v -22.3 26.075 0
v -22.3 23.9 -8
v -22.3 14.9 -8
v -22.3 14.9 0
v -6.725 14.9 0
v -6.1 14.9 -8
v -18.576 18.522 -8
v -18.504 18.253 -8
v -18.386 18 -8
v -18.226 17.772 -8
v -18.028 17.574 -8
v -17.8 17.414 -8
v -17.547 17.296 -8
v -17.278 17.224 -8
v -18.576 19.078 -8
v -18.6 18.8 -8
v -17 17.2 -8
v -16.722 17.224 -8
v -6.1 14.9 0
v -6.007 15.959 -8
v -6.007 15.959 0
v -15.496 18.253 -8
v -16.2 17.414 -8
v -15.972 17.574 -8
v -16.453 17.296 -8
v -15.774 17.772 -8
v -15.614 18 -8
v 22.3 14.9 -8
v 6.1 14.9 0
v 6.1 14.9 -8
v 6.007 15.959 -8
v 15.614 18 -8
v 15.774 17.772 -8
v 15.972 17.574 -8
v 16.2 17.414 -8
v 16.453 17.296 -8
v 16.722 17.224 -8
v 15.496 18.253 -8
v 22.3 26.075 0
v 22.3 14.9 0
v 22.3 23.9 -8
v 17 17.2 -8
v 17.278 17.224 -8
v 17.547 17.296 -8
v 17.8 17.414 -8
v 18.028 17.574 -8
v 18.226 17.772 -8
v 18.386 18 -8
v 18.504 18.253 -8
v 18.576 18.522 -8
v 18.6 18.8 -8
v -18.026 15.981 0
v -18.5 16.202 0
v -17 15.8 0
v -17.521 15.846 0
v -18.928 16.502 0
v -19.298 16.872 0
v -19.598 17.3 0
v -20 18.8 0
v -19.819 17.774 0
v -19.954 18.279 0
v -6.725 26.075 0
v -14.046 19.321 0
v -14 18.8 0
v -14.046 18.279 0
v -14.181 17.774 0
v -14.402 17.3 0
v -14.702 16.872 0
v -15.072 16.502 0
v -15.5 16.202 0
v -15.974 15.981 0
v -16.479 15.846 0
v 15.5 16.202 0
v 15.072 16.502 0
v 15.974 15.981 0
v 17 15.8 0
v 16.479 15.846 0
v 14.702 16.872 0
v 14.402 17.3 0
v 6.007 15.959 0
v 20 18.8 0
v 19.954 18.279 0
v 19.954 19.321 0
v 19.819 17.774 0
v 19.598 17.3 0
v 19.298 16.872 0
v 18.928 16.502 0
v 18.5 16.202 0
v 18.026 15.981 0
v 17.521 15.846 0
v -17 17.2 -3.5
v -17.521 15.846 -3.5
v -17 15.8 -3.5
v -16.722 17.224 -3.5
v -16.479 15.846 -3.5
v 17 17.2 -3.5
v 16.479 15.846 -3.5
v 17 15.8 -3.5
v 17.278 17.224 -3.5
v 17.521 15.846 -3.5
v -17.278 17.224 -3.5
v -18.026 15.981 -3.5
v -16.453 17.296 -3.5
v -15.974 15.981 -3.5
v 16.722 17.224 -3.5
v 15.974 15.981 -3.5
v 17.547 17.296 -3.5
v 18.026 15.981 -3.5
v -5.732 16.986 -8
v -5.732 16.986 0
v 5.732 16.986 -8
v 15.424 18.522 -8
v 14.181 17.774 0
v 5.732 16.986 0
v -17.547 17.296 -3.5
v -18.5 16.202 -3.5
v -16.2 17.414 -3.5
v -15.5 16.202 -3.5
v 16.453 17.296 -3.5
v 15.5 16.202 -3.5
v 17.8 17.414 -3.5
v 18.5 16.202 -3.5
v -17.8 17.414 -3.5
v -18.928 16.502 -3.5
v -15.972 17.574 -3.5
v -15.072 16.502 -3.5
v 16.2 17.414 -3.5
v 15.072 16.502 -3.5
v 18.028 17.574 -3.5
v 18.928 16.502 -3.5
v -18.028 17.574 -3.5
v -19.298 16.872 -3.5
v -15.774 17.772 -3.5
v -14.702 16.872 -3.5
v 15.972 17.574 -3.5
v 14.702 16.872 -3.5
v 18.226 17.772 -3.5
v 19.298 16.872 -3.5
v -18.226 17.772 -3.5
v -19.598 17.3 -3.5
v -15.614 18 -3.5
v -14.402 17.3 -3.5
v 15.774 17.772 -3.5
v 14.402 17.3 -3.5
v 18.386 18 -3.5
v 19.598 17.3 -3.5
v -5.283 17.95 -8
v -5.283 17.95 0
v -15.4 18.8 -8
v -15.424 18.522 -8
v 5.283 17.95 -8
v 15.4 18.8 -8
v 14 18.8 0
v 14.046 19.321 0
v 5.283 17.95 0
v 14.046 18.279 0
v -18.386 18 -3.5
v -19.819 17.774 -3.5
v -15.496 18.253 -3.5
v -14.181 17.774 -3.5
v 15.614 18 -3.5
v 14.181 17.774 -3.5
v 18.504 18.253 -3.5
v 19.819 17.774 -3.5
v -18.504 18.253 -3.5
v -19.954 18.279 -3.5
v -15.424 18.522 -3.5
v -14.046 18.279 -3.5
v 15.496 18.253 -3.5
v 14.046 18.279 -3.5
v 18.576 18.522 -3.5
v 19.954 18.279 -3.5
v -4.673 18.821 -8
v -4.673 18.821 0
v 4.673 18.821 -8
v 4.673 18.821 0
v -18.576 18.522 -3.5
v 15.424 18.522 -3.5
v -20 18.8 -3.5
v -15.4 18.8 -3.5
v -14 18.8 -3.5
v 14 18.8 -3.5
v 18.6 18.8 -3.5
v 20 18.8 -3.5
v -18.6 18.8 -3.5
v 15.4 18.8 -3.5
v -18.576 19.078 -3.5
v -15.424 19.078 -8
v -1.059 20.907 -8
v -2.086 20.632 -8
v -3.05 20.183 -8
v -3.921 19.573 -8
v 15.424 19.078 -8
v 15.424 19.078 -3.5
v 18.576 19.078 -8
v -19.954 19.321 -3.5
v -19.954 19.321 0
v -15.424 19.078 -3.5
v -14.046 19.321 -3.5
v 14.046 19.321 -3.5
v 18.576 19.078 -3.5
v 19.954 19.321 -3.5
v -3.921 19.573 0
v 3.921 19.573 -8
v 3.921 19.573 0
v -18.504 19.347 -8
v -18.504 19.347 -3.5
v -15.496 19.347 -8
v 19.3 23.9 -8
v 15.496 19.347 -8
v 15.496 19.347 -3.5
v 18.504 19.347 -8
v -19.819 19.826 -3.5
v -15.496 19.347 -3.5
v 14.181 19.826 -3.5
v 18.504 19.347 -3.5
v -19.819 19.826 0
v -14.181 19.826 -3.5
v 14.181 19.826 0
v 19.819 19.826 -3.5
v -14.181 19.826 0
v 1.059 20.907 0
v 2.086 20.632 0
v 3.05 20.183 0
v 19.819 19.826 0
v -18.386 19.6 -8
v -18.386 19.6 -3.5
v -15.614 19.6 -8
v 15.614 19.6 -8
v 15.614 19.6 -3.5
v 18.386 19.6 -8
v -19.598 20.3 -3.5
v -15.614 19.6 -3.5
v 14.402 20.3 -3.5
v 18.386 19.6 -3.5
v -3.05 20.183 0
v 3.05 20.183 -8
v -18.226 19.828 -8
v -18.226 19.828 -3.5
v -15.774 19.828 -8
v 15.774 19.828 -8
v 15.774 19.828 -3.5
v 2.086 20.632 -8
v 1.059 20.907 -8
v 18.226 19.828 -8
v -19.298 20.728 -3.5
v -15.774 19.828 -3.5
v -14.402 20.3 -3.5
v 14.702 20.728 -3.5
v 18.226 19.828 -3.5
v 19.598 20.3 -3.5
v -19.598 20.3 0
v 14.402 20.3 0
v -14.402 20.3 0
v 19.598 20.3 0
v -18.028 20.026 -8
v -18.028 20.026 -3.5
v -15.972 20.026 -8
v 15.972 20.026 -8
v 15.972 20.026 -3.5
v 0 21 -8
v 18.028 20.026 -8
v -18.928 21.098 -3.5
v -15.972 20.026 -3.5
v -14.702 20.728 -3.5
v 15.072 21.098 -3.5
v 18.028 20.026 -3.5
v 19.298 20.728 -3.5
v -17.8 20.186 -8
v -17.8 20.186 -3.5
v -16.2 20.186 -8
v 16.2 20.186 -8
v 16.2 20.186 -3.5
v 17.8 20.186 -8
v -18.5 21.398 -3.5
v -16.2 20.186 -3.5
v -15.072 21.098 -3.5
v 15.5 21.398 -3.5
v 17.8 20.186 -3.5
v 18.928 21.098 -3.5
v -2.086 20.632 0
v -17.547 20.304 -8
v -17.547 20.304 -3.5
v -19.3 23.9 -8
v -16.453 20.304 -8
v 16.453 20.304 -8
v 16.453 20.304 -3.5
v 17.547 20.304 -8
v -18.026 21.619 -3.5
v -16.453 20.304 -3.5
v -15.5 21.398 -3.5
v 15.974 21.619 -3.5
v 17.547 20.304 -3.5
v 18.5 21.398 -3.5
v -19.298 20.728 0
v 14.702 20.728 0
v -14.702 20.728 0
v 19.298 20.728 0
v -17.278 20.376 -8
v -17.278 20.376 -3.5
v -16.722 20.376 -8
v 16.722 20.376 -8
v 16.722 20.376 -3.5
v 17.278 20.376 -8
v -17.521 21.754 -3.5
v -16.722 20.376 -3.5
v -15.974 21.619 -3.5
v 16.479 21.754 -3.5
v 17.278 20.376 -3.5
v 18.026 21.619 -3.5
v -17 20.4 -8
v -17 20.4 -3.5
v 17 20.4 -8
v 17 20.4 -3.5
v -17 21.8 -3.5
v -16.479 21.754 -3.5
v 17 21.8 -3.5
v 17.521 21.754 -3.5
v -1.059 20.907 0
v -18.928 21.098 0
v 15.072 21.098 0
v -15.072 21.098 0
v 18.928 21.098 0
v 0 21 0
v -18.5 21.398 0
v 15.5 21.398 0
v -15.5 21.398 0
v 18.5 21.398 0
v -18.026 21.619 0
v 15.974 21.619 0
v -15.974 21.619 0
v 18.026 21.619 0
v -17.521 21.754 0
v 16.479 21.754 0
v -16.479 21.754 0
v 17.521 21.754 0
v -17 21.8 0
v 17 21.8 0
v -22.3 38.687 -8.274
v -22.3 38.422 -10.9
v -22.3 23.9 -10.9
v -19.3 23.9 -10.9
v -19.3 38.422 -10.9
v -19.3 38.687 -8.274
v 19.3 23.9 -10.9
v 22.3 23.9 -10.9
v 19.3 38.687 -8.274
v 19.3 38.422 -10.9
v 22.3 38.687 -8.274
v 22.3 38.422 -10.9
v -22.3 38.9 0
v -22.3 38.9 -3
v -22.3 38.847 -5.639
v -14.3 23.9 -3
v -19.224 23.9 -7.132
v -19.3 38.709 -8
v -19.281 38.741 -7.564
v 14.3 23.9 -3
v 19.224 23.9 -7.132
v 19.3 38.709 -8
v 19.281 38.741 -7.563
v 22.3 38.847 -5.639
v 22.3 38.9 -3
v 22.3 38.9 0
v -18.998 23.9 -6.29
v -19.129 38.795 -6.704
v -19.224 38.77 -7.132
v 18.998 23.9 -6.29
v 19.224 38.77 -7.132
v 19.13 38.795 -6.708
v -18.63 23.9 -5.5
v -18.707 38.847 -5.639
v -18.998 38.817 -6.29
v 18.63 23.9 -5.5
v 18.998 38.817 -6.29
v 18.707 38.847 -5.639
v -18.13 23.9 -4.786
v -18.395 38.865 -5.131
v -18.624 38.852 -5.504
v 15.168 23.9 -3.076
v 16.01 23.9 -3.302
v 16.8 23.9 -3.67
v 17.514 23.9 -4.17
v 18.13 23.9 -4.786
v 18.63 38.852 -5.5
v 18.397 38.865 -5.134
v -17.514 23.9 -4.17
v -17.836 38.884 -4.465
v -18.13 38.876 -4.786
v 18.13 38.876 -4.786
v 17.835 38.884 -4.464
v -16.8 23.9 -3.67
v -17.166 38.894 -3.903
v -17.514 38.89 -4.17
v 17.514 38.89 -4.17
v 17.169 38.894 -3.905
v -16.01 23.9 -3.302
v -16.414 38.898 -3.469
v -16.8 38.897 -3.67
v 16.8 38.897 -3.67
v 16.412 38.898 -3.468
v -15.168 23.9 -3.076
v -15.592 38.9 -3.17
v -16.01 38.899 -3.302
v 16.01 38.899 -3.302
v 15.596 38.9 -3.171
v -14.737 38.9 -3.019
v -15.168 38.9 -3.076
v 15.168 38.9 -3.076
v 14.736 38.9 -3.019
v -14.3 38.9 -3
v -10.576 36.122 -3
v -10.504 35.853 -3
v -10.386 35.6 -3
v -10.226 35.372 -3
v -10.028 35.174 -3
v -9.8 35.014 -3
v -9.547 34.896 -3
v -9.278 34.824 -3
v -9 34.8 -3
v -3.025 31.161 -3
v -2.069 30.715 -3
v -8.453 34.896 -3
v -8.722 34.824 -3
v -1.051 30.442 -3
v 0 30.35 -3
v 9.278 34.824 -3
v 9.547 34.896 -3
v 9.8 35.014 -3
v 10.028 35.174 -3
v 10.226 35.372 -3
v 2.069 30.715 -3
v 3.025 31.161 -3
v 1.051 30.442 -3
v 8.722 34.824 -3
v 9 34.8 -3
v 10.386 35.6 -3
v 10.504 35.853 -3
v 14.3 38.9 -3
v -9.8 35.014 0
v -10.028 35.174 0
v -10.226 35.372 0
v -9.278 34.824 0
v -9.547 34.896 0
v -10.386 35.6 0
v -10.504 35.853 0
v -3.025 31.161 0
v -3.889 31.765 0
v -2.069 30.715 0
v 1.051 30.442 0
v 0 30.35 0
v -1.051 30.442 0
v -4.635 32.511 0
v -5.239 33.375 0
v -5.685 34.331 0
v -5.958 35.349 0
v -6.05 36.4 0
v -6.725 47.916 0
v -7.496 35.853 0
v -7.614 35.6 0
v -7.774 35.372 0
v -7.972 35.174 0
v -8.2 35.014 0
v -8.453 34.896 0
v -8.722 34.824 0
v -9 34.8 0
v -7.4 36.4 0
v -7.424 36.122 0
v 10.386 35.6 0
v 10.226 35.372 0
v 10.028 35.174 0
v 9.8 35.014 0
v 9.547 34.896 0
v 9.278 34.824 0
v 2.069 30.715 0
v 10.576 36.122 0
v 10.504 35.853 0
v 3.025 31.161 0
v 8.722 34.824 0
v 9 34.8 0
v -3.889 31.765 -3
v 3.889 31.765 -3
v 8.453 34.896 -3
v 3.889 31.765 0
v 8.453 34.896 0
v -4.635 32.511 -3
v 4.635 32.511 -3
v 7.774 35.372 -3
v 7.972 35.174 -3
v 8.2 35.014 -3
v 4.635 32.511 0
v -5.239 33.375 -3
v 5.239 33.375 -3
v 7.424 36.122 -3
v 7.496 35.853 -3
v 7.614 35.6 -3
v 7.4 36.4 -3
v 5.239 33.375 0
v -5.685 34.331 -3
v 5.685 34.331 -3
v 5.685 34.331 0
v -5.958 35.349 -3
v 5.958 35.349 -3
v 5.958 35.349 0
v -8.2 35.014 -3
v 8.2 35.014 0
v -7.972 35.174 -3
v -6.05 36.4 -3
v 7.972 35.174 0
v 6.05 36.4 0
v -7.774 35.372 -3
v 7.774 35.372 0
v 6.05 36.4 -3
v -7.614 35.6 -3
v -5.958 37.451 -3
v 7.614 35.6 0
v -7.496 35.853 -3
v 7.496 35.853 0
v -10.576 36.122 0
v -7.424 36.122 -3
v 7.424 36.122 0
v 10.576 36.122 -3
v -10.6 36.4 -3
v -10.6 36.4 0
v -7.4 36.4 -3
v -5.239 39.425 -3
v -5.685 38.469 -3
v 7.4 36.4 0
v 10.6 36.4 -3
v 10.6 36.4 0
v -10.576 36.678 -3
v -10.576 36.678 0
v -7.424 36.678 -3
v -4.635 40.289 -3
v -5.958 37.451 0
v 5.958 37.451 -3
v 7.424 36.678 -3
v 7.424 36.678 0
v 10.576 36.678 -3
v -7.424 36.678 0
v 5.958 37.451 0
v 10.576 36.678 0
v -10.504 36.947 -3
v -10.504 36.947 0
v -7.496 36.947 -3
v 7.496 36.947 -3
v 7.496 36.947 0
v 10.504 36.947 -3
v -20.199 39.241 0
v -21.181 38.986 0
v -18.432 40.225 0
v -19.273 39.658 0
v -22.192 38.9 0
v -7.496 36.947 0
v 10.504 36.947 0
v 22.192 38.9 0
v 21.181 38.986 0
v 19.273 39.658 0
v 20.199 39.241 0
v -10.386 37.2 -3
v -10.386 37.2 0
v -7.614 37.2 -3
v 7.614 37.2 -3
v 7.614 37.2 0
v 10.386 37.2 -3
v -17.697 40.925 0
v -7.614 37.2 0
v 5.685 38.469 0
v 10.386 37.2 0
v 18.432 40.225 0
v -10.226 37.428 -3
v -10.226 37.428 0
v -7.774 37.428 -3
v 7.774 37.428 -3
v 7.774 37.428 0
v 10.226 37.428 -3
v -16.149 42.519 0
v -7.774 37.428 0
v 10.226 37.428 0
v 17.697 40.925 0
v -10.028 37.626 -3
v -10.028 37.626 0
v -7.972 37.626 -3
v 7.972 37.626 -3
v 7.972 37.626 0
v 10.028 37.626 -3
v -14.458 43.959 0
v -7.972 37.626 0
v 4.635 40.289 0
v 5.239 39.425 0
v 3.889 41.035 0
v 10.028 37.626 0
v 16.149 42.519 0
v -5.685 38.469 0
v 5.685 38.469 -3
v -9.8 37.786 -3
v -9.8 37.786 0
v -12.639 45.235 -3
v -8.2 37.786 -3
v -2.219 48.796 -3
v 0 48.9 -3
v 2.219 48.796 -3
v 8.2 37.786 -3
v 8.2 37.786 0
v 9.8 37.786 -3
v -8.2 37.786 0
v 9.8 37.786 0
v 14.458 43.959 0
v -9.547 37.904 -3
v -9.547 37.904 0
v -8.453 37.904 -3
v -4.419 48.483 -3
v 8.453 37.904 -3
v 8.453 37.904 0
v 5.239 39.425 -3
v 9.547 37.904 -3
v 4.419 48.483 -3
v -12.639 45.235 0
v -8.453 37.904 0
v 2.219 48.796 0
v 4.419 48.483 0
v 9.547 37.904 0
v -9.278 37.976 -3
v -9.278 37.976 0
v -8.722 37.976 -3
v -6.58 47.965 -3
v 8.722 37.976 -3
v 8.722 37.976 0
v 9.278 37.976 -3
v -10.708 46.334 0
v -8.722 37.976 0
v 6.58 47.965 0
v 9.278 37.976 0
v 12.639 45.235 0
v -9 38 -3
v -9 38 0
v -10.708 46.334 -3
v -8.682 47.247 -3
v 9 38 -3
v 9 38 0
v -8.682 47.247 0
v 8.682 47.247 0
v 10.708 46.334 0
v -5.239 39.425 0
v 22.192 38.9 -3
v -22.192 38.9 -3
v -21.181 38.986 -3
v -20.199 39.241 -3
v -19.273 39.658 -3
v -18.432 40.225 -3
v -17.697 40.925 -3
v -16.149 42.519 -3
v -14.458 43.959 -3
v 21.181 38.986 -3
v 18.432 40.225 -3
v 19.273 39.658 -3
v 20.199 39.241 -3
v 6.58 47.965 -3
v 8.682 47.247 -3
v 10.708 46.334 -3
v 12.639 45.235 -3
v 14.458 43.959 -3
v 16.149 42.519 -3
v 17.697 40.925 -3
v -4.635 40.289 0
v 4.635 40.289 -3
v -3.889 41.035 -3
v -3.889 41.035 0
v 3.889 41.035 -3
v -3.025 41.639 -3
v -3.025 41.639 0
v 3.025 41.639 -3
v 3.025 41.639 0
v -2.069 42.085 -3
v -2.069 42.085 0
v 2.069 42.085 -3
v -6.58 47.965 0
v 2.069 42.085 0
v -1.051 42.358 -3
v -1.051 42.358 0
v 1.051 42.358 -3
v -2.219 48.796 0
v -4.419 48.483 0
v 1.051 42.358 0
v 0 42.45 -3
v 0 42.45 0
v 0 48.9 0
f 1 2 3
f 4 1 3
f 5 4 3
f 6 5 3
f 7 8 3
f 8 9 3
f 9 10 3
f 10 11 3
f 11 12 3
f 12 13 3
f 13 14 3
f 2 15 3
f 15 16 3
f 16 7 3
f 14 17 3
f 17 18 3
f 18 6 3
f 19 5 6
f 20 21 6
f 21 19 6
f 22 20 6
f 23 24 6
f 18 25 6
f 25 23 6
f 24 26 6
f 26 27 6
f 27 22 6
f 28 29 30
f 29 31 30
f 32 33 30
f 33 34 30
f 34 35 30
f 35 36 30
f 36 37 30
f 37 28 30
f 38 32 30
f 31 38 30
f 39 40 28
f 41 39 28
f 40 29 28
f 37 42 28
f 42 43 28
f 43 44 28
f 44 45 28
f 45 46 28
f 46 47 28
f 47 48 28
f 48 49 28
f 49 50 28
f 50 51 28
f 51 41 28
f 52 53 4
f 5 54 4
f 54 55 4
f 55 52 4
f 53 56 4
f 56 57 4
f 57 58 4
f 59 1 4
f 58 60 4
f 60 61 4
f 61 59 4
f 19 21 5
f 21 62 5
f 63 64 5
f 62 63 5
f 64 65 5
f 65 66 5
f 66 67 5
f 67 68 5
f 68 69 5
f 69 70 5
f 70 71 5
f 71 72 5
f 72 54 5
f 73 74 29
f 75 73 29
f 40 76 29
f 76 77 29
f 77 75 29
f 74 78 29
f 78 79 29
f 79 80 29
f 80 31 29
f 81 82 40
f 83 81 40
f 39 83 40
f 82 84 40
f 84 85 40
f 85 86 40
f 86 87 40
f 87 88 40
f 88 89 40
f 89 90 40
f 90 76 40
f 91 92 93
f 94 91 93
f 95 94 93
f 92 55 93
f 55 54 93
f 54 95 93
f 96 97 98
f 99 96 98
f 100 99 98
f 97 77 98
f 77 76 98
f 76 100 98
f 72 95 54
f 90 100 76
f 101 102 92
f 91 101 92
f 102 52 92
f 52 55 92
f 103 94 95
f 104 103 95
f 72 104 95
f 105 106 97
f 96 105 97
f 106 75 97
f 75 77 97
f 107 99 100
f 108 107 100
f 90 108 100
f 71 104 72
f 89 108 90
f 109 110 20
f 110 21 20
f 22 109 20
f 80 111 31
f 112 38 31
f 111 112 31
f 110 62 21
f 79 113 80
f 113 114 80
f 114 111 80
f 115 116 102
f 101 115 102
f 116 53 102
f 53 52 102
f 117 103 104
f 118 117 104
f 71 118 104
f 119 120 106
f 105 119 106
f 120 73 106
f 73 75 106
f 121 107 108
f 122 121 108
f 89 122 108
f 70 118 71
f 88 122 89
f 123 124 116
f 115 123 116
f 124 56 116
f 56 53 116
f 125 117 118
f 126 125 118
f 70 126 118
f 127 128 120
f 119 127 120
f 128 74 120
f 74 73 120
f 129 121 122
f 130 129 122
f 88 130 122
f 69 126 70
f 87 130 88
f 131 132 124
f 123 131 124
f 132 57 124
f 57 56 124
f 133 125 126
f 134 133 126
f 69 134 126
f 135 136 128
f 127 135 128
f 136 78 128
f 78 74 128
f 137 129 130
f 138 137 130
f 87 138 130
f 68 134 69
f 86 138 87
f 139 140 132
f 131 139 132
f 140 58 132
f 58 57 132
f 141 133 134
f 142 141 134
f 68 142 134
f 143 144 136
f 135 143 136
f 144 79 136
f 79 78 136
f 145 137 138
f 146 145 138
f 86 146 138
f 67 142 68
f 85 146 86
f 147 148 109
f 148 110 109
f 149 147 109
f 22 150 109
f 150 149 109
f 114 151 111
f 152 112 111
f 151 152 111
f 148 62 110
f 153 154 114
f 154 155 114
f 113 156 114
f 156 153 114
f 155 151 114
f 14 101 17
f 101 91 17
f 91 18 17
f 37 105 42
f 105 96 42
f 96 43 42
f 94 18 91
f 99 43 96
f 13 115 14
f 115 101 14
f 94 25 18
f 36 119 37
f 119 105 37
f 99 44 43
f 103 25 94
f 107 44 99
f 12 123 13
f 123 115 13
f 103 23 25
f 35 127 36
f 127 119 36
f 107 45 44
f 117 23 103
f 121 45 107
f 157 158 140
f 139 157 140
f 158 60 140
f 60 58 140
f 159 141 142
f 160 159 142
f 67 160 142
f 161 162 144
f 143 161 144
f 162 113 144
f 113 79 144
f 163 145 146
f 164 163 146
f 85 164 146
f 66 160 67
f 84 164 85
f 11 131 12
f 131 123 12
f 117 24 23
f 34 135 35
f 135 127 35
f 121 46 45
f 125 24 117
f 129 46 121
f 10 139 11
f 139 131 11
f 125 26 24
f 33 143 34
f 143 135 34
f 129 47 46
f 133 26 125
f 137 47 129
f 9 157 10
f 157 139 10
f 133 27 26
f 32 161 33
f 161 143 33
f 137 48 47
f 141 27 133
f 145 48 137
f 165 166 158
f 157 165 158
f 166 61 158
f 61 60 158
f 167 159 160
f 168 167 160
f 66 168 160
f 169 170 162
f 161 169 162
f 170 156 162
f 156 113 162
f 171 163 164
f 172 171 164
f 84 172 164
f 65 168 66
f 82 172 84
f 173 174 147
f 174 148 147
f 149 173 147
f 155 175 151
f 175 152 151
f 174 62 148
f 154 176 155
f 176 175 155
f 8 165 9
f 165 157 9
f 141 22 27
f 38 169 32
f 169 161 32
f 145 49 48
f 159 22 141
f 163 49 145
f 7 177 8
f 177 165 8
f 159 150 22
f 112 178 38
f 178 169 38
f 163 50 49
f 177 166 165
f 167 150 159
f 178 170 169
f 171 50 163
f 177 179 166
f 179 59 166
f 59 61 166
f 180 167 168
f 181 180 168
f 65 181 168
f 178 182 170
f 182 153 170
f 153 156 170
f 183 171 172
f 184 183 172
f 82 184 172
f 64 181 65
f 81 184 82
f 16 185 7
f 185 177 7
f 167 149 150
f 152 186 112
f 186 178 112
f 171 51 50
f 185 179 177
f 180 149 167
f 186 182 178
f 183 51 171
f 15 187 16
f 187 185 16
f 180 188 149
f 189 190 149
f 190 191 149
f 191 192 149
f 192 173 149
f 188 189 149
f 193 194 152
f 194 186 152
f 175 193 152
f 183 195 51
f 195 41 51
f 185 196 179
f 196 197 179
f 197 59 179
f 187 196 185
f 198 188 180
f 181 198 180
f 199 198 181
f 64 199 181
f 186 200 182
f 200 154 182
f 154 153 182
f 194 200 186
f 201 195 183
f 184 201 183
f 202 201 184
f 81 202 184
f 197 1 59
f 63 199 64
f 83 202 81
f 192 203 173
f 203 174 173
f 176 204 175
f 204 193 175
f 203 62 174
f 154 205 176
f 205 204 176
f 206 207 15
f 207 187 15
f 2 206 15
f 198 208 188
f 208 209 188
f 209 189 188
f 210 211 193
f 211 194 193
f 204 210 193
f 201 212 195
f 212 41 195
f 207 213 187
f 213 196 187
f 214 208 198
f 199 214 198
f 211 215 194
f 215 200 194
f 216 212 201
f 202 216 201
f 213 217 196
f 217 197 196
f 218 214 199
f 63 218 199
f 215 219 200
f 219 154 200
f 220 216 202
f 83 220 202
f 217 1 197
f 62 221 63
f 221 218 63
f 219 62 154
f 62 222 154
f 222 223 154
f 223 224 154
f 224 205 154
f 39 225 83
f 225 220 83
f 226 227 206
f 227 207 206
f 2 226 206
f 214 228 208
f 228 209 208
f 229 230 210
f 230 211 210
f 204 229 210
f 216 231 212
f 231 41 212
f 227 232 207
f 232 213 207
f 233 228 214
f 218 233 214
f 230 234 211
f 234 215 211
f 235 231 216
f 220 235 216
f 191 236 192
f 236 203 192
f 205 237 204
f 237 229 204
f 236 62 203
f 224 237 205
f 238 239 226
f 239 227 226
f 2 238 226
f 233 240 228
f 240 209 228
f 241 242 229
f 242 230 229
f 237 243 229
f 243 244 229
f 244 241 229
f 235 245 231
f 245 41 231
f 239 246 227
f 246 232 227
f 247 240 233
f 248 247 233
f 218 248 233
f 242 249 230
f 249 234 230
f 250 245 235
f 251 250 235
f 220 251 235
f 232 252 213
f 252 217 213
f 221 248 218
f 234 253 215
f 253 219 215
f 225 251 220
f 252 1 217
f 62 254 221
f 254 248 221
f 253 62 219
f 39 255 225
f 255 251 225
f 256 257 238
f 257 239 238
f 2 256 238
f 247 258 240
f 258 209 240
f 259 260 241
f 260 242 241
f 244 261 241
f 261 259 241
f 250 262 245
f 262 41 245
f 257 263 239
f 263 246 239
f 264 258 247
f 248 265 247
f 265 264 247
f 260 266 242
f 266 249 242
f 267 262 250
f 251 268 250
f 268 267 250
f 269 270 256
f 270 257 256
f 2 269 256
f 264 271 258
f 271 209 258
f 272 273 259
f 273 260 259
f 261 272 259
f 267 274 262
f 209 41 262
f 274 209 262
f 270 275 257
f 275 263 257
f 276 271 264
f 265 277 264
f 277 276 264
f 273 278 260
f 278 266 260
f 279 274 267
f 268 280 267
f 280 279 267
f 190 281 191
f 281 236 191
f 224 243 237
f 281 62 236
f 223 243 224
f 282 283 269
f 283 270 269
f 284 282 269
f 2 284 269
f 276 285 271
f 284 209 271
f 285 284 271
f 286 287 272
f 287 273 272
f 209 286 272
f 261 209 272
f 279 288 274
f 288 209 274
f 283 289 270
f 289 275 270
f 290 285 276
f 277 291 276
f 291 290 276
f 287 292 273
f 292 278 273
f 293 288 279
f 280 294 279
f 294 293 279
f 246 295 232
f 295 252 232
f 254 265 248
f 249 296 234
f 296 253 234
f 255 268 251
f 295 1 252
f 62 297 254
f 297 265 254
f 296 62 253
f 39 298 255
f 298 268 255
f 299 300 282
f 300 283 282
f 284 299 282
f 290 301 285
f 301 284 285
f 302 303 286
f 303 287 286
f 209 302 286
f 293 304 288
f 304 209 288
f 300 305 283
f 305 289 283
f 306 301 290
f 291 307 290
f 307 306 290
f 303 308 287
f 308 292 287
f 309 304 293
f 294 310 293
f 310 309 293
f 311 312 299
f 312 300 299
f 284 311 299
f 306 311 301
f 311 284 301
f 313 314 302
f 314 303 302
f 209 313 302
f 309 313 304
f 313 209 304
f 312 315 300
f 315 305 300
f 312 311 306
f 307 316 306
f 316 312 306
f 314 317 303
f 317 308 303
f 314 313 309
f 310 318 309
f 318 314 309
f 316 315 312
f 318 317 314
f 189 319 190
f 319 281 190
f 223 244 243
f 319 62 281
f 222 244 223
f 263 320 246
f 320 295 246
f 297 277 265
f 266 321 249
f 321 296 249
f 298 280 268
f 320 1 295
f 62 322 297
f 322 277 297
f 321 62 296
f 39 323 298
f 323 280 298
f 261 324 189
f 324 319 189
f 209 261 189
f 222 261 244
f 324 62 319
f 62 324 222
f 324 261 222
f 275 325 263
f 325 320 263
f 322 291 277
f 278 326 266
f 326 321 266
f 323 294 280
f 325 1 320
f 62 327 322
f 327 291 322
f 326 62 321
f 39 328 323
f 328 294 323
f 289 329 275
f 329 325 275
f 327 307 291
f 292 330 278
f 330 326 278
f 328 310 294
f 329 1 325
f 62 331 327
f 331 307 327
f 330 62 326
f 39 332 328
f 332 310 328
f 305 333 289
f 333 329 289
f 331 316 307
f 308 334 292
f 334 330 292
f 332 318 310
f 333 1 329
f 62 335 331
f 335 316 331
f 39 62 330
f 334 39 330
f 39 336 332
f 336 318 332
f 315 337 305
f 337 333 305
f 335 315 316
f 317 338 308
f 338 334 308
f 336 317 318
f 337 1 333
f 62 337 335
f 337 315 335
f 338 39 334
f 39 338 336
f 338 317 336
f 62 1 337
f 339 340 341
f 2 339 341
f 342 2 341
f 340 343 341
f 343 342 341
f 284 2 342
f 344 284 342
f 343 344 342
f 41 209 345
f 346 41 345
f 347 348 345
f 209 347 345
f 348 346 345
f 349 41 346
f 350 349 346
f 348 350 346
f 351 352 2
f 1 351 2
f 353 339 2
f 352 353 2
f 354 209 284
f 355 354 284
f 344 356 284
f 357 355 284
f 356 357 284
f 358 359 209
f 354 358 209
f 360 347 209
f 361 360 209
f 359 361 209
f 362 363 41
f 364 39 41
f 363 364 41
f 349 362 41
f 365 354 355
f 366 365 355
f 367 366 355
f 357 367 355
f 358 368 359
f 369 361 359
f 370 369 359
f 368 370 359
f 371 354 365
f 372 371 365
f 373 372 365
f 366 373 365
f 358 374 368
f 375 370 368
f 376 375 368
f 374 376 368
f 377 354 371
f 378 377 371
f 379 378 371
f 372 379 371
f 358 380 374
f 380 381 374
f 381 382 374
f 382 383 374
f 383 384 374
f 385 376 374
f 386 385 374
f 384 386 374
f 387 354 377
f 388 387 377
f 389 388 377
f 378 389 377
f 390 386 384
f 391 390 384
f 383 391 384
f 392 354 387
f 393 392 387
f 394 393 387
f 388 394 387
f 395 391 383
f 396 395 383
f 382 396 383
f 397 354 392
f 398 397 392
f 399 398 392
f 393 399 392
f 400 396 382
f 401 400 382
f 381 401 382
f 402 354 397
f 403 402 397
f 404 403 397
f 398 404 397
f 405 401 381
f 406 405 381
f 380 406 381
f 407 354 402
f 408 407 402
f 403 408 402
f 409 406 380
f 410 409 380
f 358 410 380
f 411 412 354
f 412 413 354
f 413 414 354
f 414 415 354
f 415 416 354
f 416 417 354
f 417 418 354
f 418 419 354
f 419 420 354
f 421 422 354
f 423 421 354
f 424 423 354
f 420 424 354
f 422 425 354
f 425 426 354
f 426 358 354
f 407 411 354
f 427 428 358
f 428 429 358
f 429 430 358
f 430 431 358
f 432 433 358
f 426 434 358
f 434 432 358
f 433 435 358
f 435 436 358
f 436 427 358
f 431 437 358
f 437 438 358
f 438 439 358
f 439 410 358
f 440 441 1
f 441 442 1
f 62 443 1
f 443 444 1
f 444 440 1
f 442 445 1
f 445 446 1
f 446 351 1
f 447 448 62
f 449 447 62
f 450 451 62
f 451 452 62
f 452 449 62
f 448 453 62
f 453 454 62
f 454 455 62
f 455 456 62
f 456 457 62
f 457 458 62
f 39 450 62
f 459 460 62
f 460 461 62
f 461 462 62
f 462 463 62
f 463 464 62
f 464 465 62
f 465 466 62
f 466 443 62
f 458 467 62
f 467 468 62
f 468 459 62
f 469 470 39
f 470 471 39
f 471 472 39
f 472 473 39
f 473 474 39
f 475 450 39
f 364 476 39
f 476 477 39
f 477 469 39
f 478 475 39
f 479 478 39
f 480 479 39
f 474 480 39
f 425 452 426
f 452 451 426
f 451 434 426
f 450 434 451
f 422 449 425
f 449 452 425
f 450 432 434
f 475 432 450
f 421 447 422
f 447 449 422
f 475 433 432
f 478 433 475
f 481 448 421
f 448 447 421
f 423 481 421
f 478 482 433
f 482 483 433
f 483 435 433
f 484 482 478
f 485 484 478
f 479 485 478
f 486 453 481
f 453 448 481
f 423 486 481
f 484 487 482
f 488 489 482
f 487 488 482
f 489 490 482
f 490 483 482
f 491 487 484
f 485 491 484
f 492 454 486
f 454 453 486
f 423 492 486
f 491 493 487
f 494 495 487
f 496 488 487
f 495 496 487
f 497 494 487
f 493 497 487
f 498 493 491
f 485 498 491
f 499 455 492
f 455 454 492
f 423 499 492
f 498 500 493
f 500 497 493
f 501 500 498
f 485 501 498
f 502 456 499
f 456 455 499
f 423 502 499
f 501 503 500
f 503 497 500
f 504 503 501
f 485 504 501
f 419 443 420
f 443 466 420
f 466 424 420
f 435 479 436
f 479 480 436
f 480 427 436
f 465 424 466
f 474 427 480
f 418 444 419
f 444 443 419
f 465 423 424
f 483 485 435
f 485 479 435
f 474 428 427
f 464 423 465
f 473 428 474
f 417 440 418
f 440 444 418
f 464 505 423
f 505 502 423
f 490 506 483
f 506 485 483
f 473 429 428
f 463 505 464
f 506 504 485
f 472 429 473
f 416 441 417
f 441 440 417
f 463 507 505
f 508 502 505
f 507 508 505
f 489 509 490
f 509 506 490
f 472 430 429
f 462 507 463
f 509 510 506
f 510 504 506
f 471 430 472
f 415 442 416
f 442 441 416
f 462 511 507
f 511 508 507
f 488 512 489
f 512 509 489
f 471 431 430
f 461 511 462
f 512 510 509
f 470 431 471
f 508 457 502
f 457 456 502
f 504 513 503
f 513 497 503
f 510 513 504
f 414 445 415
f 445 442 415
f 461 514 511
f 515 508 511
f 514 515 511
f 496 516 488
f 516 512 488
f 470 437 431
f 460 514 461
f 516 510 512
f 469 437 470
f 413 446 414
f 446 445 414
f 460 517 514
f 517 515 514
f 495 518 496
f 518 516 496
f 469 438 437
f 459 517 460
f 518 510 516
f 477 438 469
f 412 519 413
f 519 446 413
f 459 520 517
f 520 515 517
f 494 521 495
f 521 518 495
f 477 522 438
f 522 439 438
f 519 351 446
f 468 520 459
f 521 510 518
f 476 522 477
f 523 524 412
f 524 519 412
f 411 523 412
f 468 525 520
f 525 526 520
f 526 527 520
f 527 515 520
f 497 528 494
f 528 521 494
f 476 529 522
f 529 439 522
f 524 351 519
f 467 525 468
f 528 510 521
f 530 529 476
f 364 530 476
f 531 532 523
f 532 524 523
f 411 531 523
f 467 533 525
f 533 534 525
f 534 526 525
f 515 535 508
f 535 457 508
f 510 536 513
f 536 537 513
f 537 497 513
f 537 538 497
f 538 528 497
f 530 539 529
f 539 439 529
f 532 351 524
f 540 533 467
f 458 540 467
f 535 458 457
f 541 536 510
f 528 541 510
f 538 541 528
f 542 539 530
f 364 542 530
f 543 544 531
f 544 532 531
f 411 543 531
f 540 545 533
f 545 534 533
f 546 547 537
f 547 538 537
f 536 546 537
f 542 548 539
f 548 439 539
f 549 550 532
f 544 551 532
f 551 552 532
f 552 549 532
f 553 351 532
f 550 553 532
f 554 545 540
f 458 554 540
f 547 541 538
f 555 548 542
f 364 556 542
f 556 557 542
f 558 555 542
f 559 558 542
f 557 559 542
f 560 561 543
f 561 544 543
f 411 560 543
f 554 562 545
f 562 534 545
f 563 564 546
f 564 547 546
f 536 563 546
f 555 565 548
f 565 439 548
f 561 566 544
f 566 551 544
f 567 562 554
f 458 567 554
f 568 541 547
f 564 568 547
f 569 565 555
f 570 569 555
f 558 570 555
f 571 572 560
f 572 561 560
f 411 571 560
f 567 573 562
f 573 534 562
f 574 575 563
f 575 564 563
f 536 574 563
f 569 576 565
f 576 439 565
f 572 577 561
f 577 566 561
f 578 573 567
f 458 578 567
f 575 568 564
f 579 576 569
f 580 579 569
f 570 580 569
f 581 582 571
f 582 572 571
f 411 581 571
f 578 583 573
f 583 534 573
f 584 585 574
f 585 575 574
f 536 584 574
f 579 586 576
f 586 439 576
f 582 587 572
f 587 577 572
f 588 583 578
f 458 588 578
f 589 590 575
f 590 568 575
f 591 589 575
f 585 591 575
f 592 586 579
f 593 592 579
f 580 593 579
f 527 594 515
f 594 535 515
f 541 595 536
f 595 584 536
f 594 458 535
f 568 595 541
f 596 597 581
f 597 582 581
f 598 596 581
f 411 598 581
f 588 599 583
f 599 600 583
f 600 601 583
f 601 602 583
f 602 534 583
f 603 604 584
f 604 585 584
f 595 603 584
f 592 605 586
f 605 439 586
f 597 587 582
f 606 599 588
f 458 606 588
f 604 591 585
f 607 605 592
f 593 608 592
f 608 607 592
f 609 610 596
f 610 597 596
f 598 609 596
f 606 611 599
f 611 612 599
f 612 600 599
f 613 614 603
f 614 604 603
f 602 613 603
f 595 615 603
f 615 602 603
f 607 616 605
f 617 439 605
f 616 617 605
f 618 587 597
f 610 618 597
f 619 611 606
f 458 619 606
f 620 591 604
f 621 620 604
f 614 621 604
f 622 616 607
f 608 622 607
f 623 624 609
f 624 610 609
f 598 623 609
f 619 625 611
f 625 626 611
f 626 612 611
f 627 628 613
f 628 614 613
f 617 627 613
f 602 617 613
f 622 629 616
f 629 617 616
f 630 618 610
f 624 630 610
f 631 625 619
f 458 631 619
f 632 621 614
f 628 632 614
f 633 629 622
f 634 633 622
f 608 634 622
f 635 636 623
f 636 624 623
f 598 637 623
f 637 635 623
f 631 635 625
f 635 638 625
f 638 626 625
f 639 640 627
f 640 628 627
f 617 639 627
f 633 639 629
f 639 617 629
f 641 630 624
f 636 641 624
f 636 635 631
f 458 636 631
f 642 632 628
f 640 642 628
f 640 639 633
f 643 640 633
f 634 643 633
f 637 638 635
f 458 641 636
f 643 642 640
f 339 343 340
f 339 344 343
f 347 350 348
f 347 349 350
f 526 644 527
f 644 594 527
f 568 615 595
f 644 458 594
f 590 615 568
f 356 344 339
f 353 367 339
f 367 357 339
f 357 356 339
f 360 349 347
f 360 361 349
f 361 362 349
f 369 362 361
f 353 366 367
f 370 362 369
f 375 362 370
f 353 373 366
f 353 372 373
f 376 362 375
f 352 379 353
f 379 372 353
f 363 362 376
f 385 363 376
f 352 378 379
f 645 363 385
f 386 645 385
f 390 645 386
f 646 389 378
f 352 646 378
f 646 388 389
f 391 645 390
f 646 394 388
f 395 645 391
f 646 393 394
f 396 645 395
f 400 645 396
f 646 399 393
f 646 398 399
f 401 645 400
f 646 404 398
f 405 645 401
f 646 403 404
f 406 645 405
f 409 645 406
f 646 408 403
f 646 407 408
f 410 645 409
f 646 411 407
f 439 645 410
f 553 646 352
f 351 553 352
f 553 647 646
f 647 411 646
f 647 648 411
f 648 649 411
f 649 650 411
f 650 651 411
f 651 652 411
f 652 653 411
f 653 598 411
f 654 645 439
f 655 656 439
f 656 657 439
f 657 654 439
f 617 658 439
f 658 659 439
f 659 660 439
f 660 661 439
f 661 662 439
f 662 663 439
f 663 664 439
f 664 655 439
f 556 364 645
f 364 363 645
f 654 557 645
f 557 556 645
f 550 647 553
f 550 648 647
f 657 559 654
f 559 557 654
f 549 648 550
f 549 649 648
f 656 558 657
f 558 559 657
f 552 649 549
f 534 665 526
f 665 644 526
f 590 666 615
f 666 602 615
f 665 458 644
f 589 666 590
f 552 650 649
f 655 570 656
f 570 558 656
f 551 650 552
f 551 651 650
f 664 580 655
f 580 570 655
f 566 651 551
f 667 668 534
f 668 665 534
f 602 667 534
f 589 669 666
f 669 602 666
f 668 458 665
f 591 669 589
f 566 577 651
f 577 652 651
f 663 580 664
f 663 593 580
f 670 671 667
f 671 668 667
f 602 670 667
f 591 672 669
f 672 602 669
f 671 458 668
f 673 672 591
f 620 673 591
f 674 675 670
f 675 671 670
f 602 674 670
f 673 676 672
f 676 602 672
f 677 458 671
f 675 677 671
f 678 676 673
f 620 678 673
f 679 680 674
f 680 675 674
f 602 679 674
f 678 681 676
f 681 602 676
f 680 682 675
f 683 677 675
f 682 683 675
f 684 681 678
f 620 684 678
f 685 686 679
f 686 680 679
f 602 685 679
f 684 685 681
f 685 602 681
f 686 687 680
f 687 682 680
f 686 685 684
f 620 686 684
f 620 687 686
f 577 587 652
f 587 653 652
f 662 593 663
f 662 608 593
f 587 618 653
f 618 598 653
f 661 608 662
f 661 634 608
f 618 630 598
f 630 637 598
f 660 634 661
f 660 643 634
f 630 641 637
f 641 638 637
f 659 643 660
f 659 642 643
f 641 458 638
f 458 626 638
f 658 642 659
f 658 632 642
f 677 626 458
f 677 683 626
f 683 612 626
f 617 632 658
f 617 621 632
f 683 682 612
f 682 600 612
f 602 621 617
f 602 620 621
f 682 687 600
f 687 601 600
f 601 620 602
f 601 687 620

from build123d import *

# Parameters (mm, degrees)
SKETCH_2_R          = 6.05
SKETCH_2_R_2        = 1.6
EXTRUDE_1_DEPTH     = 3
SKETCH_2_3_R        = 1.6
EXTRUDE_2_DEPTH     = 8
SKETCH_3_R          = 1.65
EXTRUDE_4_DEPTH     = 3
SKETCH_5_R          = 3
CUT_EXTRUDE_1_DEPTH = 3.5
SKETCH_6_W          = 55.305281636
SKETCH_6_H          = 51.082077229
CUT_EXTRUDE_2_DEPTH = 82.174934555
FILLET_10_R         = 6
FILLET_11_R         = 5


with BuildPart() as part:
    # ｽｹｯﾁ2 → ﾎﾞｽ - 押し出し1 (new body)
    with BuildSketch(Plane.XY):
        with BuildLine():
            Line((-22.3, 23.9), (22.3, 23.9))
            Line((22.3, 23.9), (22.3, 38.9))
            Line((22.3, 38.9), (19.3, 38.9))
            ThreePointArc((19.3, 38.9), (0, 48.9), (-19.3, 38.9))
            Line((-19.3, 38.9), (-22.3, 38.9))
            Line((-22.3, 38.9), (-22.3, 23.9))
        make_face()
        with Locations((0, 36.4)):
            Circle(SKETCH_2_R, mode=Mode.SUBTRACT)
        with Locations((-9, 36.4)):
            Circle(SKETCH_2_R_2, mode=Mode.SUBTRACT)
        with Locations((9, 36.4)):
            Circle(SKETCH_2_R_2, mode=Mode.SUBTRACT)
    extrude(amount=-EXTRUDE_1_DEPTH)

    # ｽｹｯﾁ2<3> → ﾎﾞｽ - 押し出し2 (add)
    with BuildSketch(Plane.XY):
        with BuildLine():
            Line((22.3, 23.9), (-22.3, 23.9))
            Line((-22.3, 23.9), (-22.3, 14.9))
            Line((-22.3, 14.9), (-6.1, 14.9))
            ThreePointArc((-6.1, 14.9), (0, 21), (6.1, 14.9))
            Line((6.1, 14.9), (22.3, 14.9))
            Line((22.3, 14.9), (22.3, 23.9))
        make_face()
        with Locations((-17, 18.8)):
            Circle(SKETCH_2_3_R, mode=Mode.SUBTRACT)
        with Locations((17, 18.8)):
            Circle(SKETCH_2_3_R, mode=Mode.SUBTRACT)
    extrude(amount=-EXTRUDE_2_DEPTH)

    # ｽｹｯﾁ3 → ﾎﾞｽ - 押し出し4 (add)
    with BuildSketch(Plane.ZY.offset(22.3)):
        with BuildLine():
            Line((-8, 23.9), (-10.9, 23.9))
            Line((-10.9, 23.9), (-10.9, 16.120888862))
            Line((-10.9, 16.120888862), (-43, 16.120888862))
            ThreePointArc((-43, 16.120888862), (-46.752084661, 18.734576957), (-45.600779817, 23.159958513))
            ThreePointArc((-45.600779817, 23.159958513), (-25.707792424, 34.839146133), (-3, 38.9))
            Line((-3, 38.9), (-3, 23.9))
            Line((-3, 23.9), (-8, 23.9))
        make_face()
        with Locations(Location((-43, 20.120888862, 0), (0, 0, 270))):
            Circle(SKETCH_3_R, mode=Mode.SUBTRACT)
    extrude_4 = extrude(amount=-EXTRUDE_4_DEPTH)

    # ﾐﾗｰ11: ﾎﾞｽ - 押し出し4 across plane
    add(extrude_4.mirror(Plane(origin=(0, 0, 0), x_dir=(0, 0, 1), z_dir=(1, 0, 0))))

    # ｽｹｯﾁ5 → ｶｯﾄ - 押し出し1 (cut)
    with BuildSketch(Plane.XY):
        with Locations((-17, 18.8)):
            Circle(SKETCH_5_R)
        with Locations((17, 18.8)):
            Circle(SKETCH_5_R)
    extrude(amount=-CUT_EXTRUDE_1_DEPTH, mode=Mode.SUBTRACT)

    # ｽｹｯﾁ6 → ｶｯﾄ - 押し出し2 (cut, through all)
    with BuildSketch(Plane.ZY.offset(22.3)):
        with Locations((-38.552640818, 41.661927477)):
            Rectangle(SKETCH_6_W, SKETCH_6_H)
    extrude(amount=-CUT_EXTRUDE_2_DEPTH, mode=Mode.SUBTRACT)

    # ﾌｨﾚｯﾄ10
    # the kernel refuses this fillet: 6 mm, written as the material it adds along each edge
    with BuildSketch(Plane(origin=(19.3, 38.9, 0), x_dir=(-0.6205037663908469, 0.7842034658778125, 0), z_dir=(0, 0, -1))) as fillet_10_piece_1:
        with BuildLine():
            CenterArc((2.9106521, 5.991029767), FILLET_10_R, 218.352931503, 48.513653053)
            Line((-1.794568695, 2.268007169), (0, 0))
            ThreePointArc((0, 0), (1.29134257, 0.035319543), (2.582685141, 0))
        make_face()
    extrude(amount=3)
    with BuildSketch(Plane(origin=(-19.3, 38.9, 0), x_dir=(-1, 0, 0), z_dir=(0, 0, -1))) as fillet_10_piece_2:
        with BuildLine():
            CenterArc((2.892115717, 6), FILLET_10_R, 221.486346947, 48.513653053)
            ThreePointArc((-1.602565857, 2.025350639), (-0.77358522, 1.034591229), (0, 0))
            Line((0, 0), (2.892115717, 0))
        make_face()
    extrude(amount=3)

    # ﾌｨﾚｯﾄ11
    fillet_11_edges = [part.edges().sort_by_distance(p)[0] for p in [
        (19.3, 31.4, -3),
        (-19.3, 31.4, -3),
    ]]
    fillet(fillet_11_edges, radius=FILLET_11_R)


solid = part.part
